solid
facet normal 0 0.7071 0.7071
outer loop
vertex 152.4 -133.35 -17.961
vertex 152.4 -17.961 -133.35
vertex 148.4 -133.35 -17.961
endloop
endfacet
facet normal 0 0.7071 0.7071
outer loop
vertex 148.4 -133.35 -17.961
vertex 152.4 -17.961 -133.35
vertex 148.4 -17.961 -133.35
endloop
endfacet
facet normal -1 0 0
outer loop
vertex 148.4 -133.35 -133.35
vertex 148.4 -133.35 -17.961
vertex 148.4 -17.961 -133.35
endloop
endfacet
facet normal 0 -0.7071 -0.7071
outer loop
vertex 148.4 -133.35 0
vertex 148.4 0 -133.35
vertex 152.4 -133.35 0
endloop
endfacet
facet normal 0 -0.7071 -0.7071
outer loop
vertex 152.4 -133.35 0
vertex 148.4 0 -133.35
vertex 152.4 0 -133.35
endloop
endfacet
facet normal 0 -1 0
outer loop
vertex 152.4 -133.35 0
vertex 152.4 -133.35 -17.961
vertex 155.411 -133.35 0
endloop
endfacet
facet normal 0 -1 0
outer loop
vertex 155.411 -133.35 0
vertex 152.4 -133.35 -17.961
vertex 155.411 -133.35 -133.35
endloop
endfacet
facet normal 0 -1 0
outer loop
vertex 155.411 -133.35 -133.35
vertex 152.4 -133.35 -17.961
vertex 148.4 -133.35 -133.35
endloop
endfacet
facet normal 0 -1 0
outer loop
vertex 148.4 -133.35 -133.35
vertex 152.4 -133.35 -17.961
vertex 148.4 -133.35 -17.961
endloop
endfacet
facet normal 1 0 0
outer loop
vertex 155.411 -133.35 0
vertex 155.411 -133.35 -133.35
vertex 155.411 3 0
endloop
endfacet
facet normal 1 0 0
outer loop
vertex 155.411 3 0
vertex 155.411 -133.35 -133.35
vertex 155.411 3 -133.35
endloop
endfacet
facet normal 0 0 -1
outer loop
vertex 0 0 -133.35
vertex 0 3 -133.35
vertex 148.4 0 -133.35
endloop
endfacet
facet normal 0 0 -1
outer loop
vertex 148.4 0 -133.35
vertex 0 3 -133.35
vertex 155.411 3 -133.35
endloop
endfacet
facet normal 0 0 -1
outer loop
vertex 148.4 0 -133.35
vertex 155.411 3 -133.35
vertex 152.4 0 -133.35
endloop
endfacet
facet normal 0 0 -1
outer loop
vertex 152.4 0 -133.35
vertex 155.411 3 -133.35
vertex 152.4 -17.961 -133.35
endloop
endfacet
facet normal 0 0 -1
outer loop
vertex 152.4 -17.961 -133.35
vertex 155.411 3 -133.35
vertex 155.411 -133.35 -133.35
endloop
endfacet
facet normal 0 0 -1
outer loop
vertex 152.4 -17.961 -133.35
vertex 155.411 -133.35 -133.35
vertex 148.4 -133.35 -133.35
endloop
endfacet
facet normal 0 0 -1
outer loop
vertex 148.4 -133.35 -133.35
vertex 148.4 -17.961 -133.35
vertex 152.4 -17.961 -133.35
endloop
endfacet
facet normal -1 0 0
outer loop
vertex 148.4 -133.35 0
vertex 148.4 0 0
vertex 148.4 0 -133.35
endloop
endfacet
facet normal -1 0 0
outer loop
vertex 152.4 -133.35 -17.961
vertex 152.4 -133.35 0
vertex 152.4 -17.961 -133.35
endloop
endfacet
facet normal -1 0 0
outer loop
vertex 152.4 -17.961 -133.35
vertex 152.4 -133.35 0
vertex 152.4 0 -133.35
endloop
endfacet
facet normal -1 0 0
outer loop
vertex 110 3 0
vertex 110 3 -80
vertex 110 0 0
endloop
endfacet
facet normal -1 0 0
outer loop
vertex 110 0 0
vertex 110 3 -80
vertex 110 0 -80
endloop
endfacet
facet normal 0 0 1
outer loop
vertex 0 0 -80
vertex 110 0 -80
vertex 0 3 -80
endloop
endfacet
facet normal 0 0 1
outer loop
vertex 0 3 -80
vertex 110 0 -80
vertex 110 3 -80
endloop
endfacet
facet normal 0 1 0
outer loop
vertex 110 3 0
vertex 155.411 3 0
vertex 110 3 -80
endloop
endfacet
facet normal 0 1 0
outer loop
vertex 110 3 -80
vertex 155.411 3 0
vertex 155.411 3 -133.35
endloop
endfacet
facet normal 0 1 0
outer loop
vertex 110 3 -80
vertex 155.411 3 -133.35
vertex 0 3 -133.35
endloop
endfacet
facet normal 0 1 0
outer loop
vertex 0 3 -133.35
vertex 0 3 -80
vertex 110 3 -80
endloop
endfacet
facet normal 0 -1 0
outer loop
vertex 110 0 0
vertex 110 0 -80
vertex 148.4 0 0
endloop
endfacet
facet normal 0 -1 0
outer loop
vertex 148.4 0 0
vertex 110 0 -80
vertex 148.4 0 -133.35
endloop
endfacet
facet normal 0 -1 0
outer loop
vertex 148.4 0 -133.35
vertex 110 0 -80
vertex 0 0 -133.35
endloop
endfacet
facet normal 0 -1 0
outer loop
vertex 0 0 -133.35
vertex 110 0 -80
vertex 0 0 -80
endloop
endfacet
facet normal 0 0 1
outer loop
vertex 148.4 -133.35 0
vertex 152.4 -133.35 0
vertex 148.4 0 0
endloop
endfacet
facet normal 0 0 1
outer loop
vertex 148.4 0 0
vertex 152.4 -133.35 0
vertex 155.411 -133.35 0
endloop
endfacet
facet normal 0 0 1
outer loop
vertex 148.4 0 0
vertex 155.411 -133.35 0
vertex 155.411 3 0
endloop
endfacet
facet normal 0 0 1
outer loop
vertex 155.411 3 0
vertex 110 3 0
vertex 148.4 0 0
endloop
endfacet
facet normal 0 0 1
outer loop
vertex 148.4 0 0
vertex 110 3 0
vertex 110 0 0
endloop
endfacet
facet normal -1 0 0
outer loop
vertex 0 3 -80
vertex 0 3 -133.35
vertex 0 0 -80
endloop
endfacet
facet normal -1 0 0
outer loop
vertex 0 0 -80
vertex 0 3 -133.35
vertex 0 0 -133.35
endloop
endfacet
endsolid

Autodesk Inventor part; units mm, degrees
ref_plane "YZ Plane" through (0, 0, 0) normal (1, 0, 0) x (0, 1, 0)
ref_plane "XZ Plane" through (0, 0, 0) normal (0, 1, 0) x (-1, 0, 0)
ref_plane "XY Plane" through (0, 0, 0) normal (0, 0, 1) x (1, 0, 0)
sketch "Sketch1" plane through (0, 0, 0) normal (0, 1, 0) x (-1, 0, 0)
  line L0 (110, -80) -> (-110, -80)
  line L1 (-110, -80) -> (-110, 80)
  line L2 (-110, 80) -> (110, 80)
  line L3 (110, 80) -> (110, -80)
  line L4 (320.2117, -53.5522) -> (168.036, -53.5522) construction
  line L5 (168.036, -53.5522) -> (168.036, 90.1689) construction
  line L6 (168.036, 90.1689) -> (320.2117, 90.1689) construction
  line L7 (320.2117, 90.1689) -> (320.2117, -53.5522) construction
  line L8 (124.3, -89.75) -> (-124.3, -89.75) construction
  line L9 (-124.3, -89.75) -> (-124.3, 89.75) construction
  line L10 (-124.3, 89.75) -> (124.3, 89.75) construction
  line L11 (124.3, 89.75) -> (124.3, -89.75) construction
  line L12 (124.3, -89.75) -> (-124.3, 89.75) construction
  line L13 (-124.3, -89.75) -> (124.3, 89.75) construction
  line L14 (-152.4, -107.95) -> (152.4, -107.95)
  line L15 (152.4, -107.95) -> (152.4, 107.95)
  line L16 (152.4, 107.95) -> (-152.4, 107.95)
  line L17 (-152.4, 107.95) -> (-152.4, -107.95)
  line L18 (-152.4, -107.95) -> (152.4, 107.95) construction
  line L19 (152.4, -107.95) -> (-152.4, 107.95) construction
  line L20 (177.8, 133.35) -> (177.8, -133.35)
  line L21 (177.8, -133.35) -> (-177.8, -133.35)
  line L22 (-177.8, -133.35) -> (-177.8, 133.35)
  line L23 (-177.8, 133.35) -> (177.8, 133.35)
  point P0 (0, 0)
  dimension "d11" = 220
  dimension "d12" = 160
  dimension "d15" = 248.6
  dimension "d16" = 179.5
  dimension "d18" = 304.8
  dimension "d19" = 215.9
  dimension "d22" = 25.4
extrude "Top" add sketch "Sketch1" along normal blind 25.4 contours L17 L16 L15 L14 | L20 L21 L22 L23
sketch "Sketch3" plane through (177.8, 0, 133.35) normal (1, 0, 0) x (0, 0, -1)
  line L0 (0, 0) -> (0, 25.4) projected
  line L1 (266.7, 0) -> (266.7, 25.4) projected
  line L2 (0, 0) -> (266.7, 0)
  line L3 (266.7, 0) -> (266.7, -266.7)
  line L4 (266.7, -266.7) -> (0, -266.7)
  line L5 (0, -266.7) -> (0, 0)
  point P0 (133.35, 0)
  dimension "d25" = 266.7
extrude "Right" add sketch "Sketch3" against normal blind 50.8
sketch "Sketch4" plane through (-177.8, 0, -133.35) normal (-1, 0, 0) x (0, 0, 1)
  line L0 (0, 0) -> (0, 25.4) projected
  line L1 (266.7, -266.7) -> (266.7, 0) projected
  line L2 (0, 0) -> (266.7, 0)
  line L3 (266.7, 0) -> (266.7, -266.7)
  line L4 (266.7, -266.7) -> (0, -266.7)
  line L5 (0, -266.7) -> (0, 0)
  point P0 (133.35, 0)
  dimension "d28" = 266.7
extrude "Left" add sketch "Sketch4" against normal blind 50.8
sketch "Sketch5" plane through (0, 0, 0) normal (1, 0, 0) x (0, 1, 0)
  line L0 (-266.7, -133.35) -> (25.4, -133.35) projected
  line L1 (-266.7, 133.35) -> (-266.7, -133.35) projected
  line L2 (0, -133.35) -> (-266.7, 133.35)
  line L3 (-266.7, 133.35) -> (-275.6803, 124.3697)
  line L4 (-275.6803, 124.3697) -> (-8.9803, -142.3303)
  line L5 (-8.9803, -142.3303) -> (0, -133.35)
  point P0 (0, 0)
  dimension "d31" = 12.7
extrude "Plexiglass Cut" cut sketch "Sketch5" along normal mid plane 304.8 contours L4 L1 L2 L0 | L0 L5 L4 | L4 L3 L1
sketch "Sketch6" plane through (-177.8, -266.7, -133.35) normal (0, -1, 0) x (1, 0, 0)
  line L0 (0, 0) -> (0, 266.7) projected
  line L1 (355.6, 0) -> (0, 0) projected
  line L2 (0, 266.7) -> (355.6, 266.7)
  line L3 (355.6, 266.7) -> (355.6, 0)
  line L4 (355.6, 0) -> (0, 0)
  line L5 (0, 0) -> (0, 266.7)
  point P0 (177.8, 133.35)
extrude "Bottom" add sketch "Sketch6" along normal blind 25.4
sketch "Sketch9" plane through (0, 25.4, 0) normal (0, 1, 0) x (1, 0, 0)
  line L0 (177.8, -133.35) -> (127, -133.35) projected
  line L1 (177.8, 133.35) -> (-177.8, 133.35) projected
  line L2 (177.8, -133.35) -> (-177.8, -133.35)
  line L3 (-177.8, -133.35) -> (-177.8, 133.35)
  line L4 (-177.8, 133.35) -> (177.8, 133.35)
  line L5 (177.8, 133.35) -> (177.8, -133.35)
  point P0 (0, 0)
extrude "Top Flattening" cut sketch "Sketch9" against normal blind 22.4
sketch "Sketch10" plane through (0, 3, 0) normal (0, 1, 0) x (1, 0, 0)
  line L0 (-177.8, -133.35) -> (-177.8, 133.35) projected
  line L1 (-155.4106, 133.35) -> (-177.8, 133.35)
  line L2 (-177.8, 133.35) -> (-177.8, -133.35)
  line L3 (-177.8, -133.35) -> (-155.4106, -133.35)
  line L4 (-155.4106, -133.35) -> (-155.4106, 133.35)
  line L5 (177.8, 133.35) -> (177.8, -133.35)
  line L6 (177.8, -133.35) -> (155.4106, -133.35)
  line L7 (155.4106, -133.35) -> (155.4106, 133.35)
  line L8 (155.4106, 133.35) -> (177.8, 133.35)
  line L9 (152.4, -115.3895) -> (152.4, 133.35) projected
  point P0 (0, 0)
  point P1 (-177.8, 0)
  dimension "d48" = 22.3894
  dimension "d49" = 22.3894
extrude "Outer Side Flattening" cut sketch "Sketch10" against normal through all
sketch "Sketch11" plane through (-177.8, -292.1, -133.35) normal (0, -1, 0) x (1, 0, 0)
  line L0 (22.3894, 0) -> (333.2106, 0) projected
  line L1 (333.2106, 0) -> (22.3894, 0)
  line L2 (22.3894, 0) -> (22.3894, 266.7)
  line L3 (22.3894, 266.7) -> (333.2106, 266.7)
  line L4 (333.2106, 266.7) -> (333.2106, 0)
  point P0 (177.8, 133.35)
extrude "Bottom Flattening" cut sketch "Sketch11" against normal blind 22.4
sketch "Sketch12" plane through (155.4106, 3, -133.35) normal (0, 0, -1) x (-1, 0, 0)
  line L0 (155.4106, -3) -> (155.4106, -269.7) construction
  line L1 (7.0106, -269.7) -> (7.0106, -3)
  line L2 (7.0106, -3) -> (303.8106, -3)
  line L3 (303.8106, -3) -> (303.8106, -269.7)
  line L4 (303.8106, -269.7) -> (7.0106, -269.7)
  line L5 (7.0106, -269.7) -> (303.8106, -3) construction
  line L6 (7.0106, -3) -> (303.8106, -269.7) construction
  point P0 (155.4106, -136.35)
  point P1 (155.4106, -3)
  dimension "d54" = 296.8
extrude "Inner Flattening" cut sketch "Sketch12" against normal through all
sketch "Sketch13" plane through (-155.4106, 3, 133.35) normal (0, 0, 1) x (1, 0, 0)
  line L0 (310.8211, -272.7) -> (310.8211, 0) projected
  line L1 (0, -272.7) -> (310.8211, -272.7) projected
  line L2 (310.8211, -136.35) -> (0, -136.35)
  line L3 (0, -136.35) -> (0, -272.7)
  line L4 (0, -272.7) -> (310.8211, -272.7)
  line L5 (310.8211, -272.7) -> (310.8211, -136.35)
  point P0 (155.4106, -3)
extrude "Bottom Cut" cut sketch "Sketch13" against normal through all
sketch "Sketch14" plane through (0, 3, 0) normal (0, 1, 0) x (1, 0, 0)
  line L0 (-155.4106, 133.35) -> (155.4106, 133.35) projected
  line L1 (0, 0) -> (155.4106, 0)
  line L2 (155.4106, 0) -> (155.4106, 133.35)
  line L3 (155.4106, 133.35) -> (0, 133.35)
  line L4 (0, 133.35) -> (0, 0)
  line L5 (155.4106, -133.35) -> (-155.4106, -133.35) projected
  line L6 (155.4106, 133.35) -> (-155.4106, 133.35)
  line L7 (-155.4106, 133.35) -> (-155.4106, -133.35)
  line L8 (-155.4106, -133.35) -> (155.4106, -133.35)
  line L9 (155.4106, -133.35) -> (155.4106, 133.35)
extrude "Quarter Cut" cut sketch "Sketch14" against normal through all contours L0 L4 L1 L9 L5 L7
properties part number "Apple iPad 2022 Hologram"
